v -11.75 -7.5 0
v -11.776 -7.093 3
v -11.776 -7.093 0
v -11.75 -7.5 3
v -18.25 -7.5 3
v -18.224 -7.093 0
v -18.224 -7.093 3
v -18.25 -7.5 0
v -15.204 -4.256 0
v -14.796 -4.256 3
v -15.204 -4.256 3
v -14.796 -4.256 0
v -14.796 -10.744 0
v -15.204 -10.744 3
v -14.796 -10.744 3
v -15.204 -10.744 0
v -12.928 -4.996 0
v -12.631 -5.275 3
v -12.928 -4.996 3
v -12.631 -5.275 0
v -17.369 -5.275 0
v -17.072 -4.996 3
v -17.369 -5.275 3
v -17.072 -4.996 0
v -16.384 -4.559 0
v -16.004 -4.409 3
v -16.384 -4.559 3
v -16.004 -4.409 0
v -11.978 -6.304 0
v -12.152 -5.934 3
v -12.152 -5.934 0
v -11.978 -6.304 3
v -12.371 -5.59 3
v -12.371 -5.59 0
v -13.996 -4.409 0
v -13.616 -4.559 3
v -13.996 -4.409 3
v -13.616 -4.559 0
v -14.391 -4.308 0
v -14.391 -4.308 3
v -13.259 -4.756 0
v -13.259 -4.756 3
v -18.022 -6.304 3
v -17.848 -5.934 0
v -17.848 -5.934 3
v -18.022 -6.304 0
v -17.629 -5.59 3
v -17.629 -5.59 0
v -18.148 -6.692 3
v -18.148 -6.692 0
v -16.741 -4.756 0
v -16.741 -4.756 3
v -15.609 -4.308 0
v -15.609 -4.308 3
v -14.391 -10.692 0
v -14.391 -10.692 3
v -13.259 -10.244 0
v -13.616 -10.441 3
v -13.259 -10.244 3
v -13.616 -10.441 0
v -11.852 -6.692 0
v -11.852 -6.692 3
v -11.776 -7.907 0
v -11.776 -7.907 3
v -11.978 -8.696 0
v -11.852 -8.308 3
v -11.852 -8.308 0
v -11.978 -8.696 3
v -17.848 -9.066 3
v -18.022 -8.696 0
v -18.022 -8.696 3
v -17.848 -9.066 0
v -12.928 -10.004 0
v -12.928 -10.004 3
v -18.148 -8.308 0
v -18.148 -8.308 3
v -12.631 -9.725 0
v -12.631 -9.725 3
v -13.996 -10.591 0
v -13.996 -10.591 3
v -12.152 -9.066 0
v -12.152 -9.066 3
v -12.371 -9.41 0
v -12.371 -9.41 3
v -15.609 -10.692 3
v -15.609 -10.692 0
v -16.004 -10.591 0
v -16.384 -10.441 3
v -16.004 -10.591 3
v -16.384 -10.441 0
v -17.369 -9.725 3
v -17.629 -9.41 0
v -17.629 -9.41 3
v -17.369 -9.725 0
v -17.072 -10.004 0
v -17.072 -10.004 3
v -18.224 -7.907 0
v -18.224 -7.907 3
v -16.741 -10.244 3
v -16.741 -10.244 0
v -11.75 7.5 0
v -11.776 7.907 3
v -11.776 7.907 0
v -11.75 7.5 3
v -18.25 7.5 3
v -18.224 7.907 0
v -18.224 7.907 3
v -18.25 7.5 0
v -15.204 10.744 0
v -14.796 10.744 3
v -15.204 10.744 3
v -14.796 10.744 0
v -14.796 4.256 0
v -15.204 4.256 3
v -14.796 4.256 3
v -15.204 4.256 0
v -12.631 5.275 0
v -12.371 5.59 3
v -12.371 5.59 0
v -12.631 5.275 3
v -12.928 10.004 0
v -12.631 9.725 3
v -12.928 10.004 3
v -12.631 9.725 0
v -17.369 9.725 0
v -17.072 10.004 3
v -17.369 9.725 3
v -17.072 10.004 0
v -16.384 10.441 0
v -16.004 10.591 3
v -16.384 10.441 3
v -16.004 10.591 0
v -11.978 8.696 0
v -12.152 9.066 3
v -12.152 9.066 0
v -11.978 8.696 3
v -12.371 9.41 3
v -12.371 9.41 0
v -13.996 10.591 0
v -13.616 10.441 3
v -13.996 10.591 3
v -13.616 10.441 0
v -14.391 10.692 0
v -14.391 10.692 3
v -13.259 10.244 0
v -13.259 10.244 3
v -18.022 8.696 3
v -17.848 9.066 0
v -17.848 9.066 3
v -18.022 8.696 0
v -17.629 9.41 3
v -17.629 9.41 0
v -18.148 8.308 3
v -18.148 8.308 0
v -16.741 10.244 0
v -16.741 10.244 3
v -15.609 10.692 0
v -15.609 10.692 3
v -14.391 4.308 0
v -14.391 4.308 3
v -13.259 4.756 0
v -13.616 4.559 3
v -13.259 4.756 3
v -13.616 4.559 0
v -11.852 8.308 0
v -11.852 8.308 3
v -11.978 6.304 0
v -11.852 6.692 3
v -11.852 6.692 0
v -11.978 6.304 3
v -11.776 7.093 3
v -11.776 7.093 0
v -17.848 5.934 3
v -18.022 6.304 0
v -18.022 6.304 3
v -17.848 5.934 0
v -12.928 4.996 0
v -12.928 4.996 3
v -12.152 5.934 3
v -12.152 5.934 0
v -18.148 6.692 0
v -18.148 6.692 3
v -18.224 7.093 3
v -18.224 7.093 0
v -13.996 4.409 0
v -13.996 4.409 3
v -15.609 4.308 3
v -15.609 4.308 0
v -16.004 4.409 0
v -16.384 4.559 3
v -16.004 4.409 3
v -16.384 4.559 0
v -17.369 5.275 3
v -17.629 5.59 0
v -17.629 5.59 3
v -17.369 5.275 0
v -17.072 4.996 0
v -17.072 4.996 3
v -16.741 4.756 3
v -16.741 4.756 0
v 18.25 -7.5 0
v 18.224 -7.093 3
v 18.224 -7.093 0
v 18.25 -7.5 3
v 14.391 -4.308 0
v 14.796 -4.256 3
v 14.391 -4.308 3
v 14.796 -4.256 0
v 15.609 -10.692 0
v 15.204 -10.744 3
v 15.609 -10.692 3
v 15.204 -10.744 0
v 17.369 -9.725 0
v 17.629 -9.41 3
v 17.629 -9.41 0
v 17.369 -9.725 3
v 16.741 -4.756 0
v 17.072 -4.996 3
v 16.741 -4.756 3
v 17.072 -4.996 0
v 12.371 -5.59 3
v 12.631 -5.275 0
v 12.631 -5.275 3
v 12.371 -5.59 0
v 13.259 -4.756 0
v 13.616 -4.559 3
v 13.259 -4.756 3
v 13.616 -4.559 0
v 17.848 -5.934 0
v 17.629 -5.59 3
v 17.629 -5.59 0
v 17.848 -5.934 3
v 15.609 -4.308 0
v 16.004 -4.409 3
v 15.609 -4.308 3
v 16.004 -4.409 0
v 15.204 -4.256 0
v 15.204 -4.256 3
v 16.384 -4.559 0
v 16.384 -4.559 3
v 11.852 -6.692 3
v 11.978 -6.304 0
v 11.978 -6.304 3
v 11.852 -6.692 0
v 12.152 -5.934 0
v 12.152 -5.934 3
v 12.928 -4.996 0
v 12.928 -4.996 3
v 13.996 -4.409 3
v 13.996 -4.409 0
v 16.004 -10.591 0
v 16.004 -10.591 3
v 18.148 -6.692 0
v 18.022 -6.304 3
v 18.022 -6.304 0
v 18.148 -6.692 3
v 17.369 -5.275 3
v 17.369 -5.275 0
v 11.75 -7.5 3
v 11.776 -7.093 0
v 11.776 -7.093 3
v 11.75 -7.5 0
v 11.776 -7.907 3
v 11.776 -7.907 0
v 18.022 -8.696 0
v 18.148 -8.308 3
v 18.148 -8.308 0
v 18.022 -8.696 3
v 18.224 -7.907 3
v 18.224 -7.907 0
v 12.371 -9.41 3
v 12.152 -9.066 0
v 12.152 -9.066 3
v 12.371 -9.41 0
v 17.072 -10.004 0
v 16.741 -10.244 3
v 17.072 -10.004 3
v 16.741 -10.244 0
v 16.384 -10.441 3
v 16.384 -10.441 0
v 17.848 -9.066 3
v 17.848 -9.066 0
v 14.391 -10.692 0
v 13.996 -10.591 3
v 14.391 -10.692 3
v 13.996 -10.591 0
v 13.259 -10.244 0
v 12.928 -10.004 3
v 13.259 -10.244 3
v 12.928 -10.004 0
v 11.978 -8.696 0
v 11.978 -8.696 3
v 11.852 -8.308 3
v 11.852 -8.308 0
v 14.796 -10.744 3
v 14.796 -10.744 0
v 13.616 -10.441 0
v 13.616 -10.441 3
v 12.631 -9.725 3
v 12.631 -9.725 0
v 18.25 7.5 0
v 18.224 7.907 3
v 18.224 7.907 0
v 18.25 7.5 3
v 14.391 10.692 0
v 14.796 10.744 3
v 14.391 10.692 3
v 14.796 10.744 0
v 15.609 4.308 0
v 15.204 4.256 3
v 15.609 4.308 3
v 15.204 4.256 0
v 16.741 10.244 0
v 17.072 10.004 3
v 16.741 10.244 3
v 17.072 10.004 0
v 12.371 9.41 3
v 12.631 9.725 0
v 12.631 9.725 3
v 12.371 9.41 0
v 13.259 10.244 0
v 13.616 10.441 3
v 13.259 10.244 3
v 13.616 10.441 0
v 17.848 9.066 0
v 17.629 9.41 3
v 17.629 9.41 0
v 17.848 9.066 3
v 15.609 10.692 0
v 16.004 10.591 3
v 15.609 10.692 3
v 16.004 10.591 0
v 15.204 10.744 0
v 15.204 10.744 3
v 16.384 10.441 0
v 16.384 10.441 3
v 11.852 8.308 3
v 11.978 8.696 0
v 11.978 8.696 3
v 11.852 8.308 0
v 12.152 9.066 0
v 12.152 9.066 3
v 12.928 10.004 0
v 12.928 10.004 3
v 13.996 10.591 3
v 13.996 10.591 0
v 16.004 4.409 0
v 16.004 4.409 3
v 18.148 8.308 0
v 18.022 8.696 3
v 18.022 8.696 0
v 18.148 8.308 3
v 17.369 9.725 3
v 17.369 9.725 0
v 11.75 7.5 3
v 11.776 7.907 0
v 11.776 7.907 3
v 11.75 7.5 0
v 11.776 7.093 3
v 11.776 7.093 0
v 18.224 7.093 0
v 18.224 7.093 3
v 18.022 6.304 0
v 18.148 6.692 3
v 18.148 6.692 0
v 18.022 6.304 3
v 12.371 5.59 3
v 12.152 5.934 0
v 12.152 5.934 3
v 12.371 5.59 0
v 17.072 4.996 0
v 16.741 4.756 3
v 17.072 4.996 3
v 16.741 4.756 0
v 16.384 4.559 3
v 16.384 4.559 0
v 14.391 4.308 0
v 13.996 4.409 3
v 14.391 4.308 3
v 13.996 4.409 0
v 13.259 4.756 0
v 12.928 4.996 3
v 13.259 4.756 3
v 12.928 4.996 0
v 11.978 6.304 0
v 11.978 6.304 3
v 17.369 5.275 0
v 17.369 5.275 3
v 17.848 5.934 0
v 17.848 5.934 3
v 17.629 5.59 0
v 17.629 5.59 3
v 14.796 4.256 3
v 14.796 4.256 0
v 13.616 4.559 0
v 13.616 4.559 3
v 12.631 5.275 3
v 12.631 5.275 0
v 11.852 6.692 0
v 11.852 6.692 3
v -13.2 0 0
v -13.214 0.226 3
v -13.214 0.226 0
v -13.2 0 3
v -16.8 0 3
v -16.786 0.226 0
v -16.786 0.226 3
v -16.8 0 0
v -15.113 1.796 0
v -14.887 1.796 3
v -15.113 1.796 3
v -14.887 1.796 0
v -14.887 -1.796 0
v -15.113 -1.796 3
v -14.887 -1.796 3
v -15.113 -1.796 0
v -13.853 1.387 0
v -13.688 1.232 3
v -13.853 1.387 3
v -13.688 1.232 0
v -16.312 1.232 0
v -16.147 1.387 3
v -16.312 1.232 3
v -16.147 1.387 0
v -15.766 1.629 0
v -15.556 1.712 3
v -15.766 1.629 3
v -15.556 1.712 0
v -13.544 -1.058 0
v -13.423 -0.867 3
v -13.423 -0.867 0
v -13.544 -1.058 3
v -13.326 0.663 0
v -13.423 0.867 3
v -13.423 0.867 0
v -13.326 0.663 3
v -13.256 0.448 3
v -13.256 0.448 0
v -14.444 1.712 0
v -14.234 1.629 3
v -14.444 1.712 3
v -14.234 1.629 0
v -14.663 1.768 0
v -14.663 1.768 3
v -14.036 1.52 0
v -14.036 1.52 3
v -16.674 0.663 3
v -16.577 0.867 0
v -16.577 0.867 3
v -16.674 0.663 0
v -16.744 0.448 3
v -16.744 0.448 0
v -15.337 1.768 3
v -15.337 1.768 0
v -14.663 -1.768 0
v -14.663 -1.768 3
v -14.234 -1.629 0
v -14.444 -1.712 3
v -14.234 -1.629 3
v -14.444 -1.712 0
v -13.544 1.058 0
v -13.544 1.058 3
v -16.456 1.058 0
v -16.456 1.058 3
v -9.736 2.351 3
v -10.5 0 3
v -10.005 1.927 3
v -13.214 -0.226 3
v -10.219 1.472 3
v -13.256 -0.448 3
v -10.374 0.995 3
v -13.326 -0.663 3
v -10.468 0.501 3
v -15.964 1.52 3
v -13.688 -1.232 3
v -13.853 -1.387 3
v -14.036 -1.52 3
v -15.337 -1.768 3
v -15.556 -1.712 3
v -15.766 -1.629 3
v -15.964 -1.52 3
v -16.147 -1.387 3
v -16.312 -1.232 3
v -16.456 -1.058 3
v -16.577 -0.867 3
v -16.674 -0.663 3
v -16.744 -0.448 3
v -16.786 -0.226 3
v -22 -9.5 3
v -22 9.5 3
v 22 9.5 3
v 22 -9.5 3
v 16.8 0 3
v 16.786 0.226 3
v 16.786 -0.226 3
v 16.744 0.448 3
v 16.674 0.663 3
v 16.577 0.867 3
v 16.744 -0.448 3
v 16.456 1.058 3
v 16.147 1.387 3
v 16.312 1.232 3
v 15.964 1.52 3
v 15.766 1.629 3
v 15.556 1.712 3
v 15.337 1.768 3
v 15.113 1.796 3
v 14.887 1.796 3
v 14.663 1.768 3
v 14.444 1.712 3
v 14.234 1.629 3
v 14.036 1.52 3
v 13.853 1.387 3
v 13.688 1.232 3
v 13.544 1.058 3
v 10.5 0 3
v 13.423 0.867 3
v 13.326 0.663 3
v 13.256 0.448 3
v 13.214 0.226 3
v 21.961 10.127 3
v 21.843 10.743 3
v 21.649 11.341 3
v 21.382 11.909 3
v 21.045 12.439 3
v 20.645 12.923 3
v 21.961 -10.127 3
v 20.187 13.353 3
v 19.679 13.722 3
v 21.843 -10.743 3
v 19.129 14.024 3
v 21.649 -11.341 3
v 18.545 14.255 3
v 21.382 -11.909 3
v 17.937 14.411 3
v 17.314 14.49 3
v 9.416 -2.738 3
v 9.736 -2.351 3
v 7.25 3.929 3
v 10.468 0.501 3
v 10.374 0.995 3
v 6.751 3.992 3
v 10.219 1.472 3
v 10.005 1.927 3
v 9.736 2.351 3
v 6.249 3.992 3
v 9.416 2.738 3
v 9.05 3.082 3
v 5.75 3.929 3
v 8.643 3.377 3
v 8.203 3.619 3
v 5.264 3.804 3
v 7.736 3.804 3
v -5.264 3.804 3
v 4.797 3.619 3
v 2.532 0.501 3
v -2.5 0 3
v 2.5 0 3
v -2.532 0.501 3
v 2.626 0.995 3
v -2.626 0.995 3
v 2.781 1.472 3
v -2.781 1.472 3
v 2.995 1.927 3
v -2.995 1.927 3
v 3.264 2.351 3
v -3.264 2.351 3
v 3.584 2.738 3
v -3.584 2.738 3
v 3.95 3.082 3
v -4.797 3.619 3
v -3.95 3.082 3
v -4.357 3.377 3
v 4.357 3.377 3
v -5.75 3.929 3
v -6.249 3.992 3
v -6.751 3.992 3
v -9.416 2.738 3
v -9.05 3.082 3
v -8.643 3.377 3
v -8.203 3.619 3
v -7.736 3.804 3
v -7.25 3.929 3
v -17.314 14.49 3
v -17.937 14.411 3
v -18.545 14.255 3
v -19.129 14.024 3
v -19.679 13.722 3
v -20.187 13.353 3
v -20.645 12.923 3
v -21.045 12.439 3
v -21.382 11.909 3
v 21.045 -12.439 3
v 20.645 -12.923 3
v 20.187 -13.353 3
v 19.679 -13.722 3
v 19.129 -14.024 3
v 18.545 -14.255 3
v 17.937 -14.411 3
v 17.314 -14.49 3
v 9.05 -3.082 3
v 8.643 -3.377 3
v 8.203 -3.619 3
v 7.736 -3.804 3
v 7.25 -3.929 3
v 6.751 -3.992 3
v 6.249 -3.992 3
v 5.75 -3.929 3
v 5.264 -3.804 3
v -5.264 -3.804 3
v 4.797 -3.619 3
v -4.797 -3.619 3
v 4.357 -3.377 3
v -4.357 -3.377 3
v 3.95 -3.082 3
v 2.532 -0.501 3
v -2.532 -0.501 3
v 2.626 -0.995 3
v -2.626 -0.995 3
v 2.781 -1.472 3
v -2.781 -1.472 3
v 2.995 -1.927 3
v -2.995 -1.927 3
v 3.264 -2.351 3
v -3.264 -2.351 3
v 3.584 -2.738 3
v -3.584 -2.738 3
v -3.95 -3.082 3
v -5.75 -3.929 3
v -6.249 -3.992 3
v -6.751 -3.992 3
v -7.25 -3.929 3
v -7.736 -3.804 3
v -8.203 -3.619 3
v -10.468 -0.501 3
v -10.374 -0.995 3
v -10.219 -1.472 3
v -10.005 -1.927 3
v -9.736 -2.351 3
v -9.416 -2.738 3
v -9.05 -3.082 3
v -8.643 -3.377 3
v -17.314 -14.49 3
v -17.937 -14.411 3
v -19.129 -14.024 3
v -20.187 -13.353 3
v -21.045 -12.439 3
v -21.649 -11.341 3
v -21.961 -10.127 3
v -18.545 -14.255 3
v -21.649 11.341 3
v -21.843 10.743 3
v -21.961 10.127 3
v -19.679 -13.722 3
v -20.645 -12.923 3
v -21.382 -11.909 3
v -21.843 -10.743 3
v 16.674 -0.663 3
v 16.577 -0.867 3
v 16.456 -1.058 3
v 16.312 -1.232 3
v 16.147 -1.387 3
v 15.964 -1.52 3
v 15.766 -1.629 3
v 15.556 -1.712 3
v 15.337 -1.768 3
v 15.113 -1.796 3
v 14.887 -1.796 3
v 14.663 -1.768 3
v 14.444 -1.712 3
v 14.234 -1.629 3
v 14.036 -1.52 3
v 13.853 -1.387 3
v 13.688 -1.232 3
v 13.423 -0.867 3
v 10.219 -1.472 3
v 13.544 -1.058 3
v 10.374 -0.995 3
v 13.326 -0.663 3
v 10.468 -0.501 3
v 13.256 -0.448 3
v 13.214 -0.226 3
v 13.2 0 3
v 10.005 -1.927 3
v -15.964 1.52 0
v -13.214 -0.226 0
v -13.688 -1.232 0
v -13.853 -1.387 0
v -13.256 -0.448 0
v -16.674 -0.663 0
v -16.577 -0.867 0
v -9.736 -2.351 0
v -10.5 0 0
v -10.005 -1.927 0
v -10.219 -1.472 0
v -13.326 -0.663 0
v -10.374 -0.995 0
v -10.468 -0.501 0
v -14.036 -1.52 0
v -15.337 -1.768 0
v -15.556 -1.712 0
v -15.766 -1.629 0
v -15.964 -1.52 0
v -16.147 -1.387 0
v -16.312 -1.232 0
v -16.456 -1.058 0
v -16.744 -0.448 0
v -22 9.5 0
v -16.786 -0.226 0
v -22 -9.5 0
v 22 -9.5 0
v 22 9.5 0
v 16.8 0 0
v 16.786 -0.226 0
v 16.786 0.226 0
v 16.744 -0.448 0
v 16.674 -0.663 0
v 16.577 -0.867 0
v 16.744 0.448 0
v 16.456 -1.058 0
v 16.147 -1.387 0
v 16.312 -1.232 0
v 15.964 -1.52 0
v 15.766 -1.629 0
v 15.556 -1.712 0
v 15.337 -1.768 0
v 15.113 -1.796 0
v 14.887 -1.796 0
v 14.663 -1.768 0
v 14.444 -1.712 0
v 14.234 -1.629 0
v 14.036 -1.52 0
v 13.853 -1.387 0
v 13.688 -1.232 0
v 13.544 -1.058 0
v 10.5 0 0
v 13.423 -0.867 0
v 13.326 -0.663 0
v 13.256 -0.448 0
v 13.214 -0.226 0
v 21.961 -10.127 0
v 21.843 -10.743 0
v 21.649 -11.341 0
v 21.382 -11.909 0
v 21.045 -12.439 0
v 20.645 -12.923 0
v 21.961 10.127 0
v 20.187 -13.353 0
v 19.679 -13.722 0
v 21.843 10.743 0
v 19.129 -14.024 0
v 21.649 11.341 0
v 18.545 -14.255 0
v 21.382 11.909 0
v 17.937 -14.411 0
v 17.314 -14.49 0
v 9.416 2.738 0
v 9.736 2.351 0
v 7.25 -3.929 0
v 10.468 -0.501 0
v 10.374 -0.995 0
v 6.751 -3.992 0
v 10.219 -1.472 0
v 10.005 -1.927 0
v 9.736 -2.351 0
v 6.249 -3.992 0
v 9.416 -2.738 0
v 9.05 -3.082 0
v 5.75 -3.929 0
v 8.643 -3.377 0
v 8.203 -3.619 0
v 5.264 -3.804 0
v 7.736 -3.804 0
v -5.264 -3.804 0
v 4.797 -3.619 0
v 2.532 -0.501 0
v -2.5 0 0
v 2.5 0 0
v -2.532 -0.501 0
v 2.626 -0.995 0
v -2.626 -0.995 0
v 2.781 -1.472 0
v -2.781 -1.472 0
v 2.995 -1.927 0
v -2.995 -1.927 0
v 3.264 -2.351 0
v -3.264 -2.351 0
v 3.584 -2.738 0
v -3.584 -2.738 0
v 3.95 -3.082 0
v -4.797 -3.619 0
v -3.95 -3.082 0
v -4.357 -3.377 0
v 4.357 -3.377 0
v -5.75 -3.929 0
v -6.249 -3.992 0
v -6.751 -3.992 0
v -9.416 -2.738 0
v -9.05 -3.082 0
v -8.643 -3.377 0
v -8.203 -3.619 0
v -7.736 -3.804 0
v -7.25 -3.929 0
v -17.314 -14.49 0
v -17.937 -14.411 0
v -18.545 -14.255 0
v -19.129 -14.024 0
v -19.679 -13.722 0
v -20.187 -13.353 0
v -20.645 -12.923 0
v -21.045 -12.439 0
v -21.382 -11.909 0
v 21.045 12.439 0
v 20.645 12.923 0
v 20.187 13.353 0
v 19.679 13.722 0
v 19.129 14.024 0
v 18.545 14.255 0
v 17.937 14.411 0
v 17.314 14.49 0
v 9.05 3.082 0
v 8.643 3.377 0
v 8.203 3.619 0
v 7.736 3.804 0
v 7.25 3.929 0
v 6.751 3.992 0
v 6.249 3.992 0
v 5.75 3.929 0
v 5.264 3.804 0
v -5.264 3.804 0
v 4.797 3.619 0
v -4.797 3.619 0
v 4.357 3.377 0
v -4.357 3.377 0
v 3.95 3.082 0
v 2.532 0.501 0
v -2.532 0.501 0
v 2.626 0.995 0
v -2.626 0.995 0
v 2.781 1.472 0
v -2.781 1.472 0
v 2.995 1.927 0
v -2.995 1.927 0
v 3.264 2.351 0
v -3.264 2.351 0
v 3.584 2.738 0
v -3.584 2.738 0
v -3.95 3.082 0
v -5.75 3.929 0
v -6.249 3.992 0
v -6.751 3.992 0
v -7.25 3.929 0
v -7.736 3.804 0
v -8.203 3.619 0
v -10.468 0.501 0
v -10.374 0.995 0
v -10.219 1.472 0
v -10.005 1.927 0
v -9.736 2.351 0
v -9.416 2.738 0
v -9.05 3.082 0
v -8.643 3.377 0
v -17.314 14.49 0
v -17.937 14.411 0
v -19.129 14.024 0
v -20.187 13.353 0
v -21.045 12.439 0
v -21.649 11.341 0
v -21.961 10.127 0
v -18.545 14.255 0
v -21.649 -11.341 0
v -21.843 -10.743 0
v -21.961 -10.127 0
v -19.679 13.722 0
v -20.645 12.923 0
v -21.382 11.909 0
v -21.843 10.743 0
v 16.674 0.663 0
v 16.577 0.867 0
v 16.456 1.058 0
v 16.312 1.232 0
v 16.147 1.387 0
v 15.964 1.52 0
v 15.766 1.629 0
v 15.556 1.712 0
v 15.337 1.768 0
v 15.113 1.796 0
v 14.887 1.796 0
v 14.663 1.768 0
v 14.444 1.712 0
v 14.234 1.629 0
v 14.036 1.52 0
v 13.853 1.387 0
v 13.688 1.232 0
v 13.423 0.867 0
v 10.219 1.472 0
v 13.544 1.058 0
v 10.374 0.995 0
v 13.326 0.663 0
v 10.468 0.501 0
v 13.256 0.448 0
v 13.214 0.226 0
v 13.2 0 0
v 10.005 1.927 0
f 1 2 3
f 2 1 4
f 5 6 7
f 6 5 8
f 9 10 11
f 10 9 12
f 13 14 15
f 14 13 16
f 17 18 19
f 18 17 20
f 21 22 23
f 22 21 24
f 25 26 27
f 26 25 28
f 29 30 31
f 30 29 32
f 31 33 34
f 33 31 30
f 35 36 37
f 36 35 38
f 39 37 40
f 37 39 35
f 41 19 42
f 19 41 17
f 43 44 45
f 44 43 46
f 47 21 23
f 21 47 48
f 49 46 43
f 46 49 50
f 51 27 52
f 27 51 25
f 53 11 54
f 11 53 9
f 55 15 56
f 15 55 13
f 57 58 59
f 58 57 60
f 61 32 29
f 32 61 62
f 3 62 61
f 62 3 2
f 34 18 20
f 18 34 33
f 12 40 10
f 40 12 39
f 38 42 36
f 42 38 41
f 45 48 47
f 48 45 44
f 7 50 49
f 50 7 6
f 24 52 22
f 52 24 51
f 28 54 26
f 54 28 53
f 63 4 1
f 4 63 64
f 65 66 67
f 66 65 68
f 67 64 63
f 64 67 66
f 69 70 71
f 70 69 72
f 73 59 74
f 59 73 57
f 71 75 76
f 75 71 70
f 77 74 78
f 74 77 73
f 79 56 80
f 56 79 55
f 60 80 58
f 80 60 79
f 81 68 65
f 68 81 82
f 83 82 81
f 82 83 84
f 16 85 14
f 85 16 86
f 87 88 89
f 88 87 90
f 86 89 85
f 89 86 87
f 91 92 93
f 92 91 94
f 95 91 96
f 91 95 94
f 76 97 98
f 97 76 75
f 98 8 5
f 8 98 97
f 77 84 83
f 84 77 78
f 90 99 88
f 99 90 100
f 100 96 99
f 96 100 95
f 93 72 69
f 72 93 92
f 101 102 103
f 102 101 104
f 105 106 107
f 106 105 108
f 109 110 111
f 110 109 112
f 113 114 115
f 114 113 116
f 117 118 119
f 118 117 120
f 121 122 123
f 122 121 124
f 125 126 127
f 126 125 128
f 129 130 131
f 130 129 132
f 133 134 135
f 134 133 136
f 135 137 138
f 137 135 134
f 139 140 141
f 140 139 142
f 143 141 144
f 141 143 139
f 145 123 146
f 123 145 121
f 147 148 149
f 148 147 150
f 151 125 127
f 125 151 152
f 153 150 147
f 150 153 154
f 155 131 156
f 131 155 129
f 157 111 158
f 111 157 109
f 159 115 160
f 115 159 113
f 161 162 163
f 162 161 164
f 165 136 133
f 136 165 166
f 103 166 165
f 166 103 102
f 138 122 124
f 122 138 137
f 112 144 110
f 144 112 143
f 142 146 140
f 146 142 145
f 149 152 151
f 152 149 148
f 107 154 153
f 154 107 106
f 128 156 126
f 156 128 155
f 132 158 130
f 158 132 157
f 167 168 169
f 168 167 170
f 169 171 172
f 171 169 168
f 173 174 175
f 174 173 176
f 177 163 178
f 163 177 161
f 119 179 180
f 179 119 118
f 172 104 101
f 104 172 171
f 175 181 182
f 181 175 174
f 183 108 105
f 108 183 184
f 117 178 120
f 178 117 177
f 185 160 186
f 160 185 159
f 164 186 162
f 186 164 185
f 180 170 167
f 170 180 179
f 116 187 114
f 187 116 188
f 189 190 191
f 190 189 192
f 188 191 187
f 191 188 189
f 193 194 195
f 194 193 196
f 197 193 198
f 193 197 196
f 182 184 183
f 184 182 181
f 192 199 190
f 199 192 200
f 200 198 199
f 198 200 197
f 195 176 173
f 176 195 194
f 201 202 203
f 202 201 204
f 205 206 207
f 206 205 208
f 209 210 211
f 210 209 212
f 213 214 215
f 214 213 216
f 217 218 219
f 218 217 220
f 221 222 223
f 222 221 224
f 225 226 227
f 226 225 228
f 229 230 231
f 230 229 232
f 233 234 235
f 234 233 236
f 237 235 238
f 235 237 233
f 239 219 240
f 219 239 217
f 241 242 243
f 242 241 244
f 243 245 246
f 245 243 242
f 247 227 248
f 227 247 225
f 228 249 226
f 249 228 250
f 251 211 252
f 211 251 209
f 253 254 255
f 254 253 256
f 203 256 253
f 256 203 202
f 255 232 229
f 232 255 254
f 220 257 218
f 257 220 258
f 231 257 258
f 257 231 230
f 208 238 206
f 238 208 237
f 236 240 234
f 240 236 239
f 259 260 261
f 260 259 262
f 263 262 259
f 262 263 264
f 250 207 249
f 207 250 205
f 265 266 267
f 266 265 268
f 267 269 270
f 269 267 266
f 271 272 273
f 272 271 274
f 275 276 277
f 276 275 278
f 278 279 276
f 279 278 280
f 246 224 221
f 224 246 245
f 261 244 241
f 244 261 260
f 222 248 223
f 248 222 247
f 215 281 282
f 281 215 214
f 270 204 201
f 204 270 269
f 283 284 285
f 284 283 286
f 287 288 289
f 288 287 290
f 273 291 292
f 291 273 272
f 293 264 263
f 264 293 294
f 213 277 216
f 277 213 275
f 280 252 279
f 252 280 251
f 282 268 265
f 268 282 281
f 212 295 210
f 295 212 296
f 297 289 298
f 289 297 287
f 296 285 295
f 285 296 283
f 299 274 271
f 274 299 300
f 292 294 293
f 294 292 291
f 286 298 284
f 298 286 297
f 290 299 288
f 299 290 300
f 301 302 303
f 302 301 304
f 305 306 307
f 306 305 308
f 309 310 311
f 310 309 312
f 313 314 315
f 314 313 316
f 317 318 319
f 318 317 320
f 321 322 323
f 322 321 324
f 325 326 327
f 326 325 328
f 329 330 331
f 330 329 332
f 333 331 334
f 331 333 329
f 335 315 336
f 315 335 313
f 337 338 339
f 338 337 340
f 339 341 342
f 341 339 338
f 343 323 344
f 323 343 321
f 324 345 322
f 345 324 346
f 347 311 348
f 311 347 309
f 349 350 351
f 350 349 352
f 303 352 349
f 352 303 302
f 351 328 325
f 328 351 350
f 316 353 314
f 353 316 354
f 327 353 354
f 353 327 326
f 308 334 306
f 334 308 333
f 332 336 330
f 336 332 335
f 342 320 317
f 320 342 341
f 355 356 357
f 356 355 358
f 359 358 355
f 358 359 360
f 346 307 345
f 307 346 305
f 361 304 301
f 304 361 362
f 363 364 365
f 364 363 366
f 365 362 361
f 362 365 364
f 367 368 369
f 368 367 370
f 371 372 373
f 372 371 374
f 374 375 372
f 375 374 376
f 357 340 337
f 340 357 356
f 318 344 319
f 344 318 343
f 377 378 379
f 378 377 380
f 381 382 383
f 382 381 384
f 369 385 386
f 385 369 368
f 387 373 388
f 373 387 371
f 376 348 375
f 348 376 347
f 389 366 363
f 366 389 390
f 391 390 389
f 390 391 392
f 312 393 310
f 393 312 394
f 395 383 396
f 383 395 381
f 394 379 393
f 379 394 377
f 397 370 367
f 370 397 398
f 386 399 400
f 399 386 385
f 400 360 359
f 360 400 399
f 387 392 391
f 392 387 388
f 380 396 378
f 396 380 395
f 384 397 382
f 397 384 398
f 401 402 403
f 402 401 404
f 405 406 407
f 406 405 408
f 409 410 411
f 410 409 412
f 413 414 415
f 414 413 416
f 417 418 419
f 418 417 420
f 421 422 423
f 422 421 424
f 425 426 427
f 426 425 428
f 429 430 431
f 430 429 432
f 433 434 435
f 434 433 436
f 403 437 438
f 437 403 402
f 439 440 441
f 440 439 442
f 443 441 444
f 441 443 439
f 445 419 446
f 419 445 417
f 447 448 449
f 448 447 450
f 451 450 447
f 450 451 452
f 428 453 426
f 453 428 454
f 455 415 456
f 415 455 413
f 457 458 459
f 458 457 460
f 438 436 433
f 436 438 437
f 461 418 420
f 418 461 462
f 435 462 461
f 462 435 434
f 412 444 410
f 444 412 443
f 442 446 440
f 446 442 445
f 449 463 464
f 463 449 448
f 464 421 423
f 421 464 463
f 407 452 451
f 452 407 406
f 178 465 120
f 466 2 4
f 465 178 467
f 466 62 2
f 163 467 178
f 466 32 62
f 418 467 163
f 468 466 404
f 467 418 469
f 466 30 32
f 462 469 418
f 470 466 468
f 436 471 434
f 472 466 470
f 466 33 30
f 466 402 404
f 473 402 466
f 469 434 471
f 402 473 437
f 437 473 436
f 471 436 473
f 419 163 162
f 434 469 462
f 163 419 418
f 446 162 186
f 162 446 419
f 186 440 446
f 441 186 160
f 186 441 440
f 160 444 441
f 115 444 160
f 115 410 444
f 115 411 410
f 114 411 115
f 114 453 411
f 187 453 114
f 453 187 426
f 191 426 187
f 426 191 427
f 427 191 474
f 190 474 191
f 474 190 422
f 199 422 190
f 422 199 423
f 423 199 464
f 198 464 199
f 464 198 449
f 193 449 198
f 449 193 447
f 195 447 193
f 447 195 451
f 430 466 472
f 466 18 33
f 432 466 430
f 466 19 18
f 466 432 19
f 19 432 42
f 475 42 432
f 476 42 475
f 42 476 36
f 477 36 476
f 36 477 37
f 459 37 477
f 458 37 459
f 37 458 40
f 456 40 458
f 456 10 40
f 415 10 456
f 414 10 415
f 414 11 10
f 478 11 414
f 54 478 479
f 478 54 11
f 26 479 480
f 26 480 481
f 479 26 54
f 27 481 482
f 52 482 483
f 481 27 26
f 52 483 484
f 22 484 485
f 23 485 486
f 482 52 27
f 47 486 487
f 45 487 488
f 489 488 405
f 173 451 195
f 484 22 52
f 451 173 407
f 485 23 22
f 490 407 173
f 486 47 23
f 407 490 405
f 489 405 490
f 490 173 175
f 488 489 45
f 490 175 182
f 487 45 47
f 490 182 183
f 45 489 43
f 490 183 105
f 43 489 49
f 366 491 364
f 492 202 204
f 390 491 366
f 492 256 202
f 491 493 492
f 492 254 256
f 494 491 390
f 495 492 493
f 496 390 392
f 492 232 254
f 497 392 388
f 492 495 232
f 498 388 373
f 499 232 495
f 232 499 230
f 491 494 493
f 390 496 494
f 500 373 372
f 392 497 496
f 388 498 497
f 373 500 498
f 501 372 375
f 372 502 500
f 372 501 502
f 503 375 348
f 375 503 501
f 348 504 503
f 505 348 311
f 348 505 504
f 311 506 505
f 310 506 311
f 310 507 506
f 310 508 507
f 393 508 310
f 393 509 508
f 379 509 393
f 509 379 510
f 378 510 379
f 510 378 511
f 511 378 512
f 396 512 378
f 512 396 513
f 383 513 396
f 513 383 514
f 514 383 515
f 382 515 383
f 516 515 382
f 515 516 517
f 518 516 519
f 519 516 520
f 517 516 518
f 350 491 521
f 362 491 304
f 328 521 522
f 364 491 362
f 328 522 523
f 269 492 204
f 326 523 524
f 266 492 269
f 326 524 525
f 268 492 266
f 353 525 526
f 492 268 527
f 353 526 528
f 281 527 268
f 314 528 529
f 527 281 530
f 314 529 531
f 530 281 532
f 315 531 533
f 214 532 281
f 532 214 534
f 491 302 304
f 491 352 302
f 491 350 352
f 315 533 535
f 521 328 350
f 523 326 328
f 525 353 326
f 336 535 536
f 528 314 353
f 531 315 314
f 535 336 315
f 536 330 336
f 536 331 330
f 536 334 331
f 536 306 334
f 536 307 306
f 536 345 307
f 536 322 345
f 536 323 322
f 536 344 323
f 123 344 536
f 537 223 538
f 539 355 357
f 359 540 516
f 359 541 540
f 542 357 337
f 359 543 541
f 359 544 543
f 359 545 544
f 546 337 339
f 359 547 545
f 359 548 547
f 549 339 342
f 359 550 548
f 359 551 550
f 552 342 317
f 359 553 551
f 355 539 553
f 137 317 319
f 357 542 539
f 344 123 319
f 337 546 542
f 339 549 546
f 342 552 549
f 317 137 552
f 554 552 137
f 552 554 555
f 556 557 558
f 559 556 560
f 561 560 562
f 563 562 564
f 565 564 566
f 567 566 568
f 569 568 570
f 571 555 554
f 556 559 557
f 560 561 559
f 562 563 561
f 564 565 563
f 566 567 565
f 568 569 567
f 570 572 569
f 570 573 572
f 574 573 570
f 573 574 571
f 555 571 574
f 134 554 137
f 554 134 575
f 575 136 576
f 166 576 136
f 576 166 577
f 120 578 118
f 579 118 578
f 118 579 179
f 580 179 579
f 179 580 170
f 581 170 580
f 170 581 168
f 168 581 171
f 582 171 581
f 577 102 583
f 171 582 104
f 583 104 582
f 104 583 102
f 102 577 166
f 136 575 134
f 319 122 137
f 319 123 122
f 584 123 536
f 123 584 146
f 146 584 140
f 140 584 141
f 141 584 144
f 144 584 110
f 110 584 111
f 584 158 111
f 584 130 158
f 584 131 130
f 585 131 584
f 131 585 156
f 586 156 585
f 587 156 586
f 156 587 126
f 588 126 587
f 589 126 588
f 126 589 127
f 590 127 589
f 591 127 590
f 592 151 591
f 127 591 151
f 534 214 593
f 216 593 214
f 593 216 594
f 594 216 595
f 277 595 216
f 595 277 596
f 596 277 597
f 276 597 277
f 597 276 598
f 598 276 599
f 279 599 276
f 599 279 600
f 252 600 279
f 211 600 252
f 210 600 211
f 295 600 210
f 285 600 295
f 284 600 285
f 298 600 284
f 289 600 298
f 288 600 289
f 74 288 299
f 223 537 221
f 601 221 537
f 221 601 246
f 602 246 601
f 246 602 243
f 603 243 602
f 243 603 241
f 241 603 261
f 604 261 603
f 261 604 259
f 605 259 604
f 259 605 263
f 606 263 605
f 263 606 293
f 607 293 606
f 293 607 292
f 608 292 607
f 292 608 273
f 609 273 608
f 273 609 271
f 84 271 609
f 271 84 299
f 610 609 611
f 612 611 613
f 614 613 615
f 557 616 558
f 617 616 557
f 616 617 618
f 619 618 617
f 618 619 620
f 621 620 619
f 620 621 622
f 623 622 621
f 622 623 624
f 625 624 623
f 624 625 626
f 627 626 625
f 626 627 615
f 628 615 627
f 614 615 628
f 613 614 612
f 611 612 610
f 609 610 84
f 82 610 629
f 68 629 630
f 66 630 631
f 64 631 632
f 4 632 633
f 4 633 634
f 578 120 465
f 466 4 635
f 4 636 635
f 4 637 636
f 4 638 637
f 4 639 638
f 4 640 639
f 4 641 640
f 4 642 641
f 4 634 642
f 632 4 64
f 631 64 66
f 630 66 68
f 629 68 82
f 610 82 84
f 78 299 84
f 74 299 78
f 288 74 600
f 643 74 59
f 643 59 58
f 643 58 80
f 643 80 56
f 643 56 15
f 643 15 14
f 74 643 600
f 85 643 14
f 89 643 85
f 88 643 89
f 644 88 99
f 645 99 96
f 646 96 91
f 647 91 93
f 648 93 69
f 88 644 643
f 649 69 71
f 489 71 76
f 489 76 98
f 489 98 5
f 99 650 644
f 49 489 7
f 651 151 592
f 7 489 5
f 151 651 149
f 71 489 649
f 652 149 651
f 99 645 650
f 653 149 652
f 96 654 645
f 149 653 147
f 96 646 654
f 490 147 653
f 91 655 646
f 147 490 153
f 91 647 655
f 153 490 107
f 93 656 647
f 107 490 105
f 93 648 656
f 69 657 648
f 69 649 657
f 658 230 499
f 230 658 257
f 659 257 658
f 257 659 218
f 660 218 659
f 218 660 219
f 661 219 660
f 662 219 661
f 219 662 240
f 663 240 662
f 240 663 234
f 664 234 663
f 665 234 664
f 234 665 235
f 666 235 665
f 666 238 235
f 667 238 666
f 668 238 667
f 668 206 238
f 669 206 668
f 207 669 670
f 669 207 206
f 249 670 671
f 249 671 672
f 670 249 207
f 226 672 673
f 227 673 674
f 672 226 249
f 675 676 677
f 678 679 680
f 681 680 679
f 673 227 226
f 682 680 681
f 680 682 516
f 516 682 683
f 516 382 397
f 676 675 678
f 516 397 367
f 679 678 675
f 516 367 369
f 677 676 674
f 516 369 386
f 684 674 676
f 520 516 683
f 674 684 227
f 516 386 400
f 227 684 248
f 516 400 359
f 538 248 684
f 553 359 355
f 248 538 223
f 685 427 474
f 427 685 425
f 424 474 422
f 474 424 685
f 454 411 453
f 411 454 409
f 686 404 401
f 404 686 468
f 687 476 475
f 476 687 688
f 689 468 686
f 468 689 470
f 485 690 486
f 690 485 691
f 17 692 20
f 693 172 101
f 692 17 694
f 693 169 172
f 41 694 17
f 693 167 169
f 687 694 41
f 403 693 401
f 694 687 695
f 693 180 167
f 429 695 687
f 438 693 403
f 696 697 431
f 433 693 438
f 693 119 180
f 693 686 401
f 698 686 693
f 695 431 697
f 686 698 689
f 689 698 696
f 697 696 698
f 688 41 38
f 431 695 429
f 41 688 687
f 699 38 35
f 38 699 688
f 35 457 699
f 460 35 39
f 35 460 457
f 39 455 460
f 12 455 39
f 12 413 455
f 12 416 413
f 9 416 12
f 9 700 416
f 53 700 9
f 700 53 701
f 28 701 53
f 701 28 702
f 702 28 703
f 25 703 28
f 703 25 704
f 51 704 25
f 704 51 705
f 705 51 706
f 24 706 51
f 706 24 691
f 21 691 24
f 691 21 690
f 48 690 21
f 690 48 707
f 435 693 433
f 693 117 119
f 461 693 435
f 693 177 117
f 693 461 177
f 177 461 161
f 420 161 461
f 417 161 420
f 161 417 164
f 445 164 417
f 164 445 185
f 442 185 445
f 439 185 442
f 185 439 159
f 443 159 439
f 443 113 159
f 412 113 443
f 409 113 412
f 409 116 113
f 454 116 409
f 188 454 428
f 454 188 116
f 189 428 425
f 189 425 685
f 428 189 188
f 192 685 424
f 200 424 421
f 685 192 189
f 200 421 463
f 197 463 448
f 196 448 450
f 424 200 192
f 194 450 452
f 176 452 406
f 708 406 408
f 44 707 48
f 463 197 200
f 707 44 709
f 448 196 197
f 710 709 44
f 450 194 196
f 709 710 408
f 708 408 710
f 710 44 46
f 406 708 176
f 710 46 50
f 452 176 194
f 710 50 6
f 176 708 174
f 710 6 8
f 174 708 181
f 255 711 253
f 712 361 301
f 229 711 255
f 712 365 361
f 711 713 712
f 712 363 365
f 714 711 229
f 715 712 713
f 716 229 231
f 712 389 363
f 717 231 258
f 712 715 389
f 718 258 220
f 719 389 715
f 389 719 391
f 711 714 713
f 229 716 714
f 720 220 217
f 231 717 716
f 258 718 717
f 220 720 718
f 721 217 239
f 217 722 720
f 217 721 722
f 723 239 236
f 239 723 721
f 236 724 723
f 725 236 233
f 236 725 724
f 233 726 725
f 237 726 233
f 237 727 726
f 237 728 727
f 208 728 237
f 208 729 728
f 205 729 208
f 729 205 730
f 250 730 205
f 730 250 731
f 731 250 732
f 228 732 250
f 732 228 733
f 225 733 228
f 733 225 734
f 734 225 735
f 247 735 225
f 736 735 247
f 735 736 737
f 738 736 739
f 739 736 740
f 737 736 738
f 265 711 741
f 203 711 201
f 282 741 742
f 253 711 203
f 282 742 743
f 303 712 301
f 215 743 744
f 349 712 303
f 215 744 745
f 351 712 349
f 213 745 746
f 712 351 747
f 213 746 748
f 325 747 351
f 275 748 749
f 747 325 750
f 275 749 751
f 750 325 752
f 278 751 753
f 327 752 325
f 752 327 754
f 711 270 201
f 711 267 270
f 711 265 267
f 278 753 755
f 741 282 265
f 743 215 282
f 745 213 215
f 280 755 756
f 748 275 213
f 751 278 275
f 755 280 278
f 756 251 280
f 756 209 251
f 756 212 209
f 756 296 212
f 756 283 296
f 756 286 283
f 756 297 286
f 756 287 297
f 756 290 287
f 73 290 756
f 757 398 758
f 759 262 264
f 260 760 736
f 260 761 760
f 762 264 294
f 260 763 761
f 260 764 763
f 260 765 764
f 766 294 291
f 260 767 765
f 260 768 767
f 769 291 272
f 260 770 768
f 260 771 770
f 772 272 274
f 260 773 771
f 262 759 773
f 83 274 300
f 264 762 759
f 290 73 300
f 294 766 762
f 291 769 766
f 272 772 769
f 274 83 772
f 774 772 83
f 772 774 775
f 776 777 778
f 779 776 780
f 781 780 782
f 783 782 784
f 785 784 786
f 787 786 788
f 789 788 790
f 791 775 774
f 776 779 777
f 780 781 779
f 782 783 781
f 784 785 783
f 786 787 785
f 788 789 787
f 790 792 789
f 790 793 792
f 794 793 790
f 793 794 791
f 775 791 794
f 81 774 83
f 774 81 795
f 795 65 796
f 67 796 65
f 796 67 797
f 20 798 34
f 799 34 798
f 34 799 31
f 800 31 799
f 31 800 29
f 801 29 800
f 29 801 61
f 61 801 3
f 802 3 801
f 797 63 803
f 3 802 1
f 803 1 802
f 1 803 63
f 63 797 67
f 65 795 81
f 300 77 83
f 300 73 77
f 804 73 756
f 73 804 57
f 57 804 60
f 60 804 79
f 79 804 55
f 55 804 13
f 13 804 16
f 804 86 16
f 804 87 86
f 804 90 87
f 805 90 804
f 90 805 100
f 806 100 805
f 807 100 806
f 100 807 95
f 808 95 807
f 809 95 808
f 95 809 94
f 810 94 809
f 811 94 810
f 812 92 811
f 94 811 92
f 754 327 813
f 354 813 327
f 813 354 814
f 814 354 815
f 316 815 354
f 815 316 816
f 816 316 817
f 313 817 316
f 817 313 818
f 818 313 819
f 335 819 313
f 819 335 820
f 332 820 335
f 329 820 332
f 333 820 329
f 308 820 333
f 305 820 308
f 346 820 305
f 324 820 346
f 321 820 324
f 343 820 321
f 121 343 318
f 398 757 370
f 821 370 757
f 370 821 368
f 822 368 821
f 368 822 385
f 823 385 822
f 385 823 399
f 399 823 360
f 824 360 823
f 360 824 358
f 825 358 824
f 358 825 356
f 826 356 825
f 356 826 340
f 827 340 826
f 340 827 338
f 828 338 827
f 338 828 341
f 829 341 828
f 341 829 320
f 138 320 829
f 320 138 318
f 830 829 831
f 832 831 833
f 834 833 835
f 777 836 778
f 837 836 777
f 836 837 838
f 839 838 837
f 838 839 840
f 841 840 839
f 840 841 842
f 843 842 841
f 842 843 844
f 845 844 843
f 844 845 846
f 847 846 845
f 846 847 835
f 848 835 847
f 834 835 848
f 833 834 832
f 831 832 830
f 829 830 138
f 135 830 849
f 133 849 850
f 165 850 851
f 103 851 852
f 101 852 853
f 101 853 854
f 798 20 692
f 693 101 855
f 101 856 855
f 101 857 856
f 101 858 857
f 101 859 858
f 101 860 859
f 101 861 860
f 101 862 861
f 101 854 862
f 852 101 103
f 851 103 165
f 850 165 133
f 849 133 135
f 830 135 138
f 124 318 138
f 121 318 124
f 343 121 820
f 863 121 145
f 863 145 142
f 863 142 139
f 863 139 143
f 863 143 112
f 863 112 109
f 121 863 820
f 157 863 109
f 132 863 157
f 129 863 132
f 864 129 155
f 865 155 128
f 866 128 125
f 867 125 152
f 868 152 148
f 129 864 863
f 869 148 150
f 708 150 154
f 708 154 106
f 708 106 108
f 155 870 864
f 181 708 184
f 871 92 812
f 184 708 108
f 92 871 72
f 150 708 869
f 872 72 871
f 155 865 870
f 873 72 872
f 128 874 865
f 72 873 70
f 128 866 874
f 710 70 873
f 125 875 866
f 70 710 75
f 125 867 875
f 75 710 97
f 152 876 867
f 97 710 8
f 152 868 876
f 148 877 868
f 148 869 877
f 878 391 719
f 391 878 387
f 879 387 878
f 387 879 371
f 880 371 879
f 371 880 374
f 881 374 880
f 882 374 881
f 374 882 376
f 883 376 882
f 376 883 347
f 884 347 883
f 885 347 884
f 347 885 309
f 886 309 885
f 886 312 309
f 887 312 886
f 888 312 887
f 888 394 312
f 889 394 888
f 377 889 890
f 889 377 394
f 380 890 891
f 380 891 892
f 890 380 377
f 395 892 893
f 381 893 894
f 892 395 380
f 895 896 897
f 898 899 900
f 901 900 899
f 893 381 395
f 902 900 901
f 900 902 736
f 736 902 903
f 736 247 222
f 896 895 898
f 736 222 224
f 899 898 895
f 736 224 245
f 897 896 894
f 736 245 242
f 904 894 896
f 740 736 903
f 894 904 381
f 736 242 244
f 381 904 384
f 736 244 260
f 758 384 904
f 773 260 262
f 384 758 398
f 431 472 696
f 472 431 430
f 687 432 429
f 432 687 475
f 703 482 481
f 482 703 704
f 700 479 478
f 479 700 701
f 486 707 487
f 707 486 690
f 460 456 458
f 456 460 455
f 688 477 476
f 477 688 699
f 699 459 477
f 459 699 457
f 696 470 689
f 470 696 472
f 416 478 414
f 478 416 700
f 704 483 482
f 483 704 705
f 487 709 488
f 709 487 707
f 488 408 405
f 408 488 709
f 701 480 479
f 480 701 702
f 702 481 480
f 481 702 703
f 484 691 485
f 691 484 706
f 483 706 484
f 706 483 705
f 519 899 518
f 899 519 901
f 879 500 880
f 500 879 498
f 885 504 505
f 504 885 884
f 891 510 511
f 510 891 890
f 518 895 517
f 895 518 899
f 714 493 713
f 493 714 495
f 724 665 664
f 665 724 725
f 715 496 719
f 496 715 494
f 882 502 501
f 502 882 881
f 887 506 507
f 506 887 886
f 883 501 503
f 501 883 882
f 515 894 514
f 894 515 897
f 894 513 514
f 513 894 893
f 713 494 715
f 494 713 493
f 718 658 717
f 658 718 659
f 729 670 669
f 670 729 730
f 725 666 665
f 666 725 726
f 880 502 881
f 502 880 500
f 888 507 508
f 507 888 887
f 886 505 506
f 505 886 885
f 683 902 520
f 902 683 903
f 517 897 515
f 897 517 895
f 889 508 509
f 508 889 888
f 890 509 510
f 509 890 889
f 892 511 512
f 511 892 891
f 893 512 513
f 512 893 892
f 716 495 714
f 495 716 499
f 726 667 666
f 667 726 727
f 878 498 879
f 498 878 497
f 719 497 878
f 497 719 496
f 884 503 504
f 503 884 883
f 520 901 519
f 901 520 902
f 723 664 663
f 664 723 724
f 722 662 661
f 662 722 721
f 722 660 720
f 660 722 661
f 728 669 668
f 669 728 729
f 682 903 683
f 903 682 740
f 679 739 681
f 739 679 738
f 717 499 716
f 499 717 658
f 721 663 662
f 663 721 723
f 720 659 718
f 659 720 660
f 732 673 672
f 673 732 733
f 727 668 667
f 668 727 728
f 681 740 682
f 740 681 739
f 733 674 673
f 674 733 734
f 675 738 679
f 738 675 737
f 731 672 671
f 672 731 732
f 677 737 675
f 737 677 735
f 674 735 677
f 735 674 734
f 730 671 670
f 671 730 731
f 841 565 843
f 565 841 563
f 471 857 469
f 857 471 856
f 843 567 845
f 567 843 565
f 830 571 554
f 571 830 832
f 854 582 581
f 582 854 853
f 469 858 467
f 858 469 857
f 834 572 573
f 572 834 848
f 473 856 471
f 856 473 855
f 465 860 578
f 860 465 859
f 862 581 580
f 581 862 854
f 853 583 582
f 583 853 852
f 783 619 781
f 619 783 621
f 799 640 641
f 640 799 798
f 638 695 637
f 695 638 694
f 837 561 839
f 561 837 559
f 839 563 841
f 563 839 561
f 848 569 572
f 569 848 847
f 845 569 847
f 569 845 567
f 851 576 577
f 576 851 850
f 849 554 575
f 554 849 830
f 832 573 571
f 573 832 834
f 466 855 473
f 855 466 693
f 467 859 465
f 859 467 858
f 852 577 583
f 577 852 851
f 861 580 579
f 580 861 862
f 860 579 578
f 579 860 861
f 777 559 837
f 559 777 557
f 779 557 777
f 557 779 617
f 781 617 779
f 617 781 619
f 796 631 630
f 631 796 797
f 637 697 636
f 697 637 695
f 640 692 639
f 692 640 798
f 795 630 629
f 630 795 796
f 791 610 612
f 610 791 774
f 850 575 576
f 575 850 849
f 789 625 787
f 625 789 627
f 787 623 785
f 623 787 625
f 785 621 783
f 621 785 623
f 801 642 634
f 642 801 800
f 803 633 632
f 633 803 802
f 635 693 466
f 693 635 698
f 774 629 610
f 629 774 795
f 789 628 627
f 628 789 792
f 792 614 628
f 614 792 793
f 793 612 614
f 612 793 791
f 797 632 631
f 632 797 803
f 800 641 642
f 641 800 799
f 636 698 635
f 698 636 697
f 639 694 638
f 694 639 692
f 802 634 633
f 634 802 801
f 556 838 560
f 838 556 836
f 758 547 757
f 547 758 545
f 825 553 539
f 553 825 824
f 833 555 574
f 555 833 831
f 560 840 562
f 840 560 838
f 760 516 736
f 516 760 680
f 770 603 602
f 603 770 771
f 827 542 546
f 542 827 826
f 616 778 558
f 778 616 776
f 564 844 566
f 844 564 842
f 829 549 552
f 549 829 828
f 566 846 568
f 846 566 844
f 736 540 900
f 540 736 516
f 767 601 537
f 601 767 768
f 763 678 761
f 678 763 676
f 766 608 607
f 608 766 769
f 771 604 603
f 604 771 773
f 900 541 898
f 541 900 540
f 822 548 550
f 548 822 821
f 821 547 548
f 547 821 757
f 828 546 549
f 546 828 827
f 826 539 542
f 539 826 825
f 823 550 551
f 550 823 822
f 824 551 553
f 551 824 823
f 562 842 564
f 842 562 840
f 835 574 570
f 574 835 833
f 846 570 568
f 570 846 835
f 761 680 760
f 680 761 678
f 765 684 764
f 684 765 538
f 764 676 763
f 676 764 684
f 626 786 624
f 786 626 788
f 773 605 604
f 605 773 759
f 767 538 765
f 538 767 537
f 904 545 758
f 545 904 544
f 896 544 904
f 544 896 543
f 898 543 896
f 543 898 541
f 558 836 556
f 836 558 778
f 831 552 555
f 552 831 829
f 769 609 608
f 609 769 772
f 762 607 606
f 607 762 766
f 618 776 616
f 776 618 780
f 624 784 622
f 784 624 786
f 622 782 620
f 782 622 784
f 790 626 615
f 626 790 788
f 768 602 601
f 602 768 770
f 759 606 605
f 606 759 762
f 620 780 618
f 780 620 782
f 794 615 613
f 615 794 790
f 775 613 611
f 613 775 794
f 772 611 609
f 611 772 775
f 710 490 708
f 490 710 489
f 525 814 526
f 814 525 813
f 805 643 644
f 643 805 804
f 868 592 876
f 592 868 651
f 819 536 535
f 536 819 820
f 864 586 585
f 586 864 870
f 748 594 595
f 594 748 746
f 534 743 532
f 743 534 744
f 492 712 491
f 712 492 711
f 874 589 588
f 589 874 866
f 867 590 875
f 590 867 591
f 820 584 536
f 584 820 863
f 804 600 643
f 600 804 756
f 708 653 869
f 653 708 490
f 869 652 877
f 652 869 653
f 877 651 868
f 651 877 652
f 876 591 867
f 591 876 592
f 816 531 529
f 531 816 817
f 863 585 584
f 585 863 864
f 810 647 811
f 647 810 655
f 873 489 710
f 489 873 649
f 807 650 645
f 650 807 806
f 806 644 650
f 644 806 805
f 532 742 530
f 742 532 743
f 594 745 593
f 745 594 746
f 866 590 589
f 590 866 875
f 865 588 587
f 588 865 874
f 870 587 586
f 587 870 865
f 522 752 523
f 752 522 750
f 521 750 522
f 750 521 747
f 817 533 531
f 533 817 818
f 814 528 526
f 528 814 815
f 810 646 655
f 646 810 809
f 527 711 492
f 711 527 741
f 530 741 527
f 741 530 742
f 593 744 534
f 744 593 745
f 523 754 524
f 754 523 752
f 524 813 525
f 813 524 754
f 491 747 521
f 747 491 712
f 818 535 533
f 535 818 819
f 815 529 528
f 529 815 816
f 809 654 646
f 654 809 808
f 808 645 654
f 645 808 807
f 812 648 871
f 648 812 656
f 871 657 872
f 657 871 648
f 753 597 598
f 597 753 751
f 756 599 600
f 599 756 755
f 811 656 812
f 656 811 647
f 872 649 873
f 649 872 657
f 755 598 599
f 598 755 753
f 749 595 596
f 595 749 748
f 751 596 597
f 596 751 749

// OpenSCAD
$fn = 50;


difference() {
	union() {
		hull() {
			translate(v = [-17.0000000000, 9.5000000000, 0]) {
				cylinder(h = 3, r = 5);
			}
			translate(v = [17.0000000000, 9.5000000000, 0]) {
				cylinder(h = 3, r = 5);
			}
			translate(v = [-17.0000000000, -9.5000000000, 0]) {
				cylinder(h = 3, r = 5);
			}
			translate(v = [17.0000000000, -9.5000000000, 0]) {
				cylinder(h = 3, r = 5);
			}
		}
	}
	union() {
		#translate(v = [-15.0000000000, -7.5000000000, 0]) {
			cylinder(h = 3, r = 3.2500000000);
		}
		#translate(v = [-15.0000000000, 7.5000000000, 0]) {
			cylinder(h = 3, r = 3.2500000000);
		}
		#translate(v = [15.0000000000, -7.5000000000, 0]) {
			cylinder(h = 3, r = 3.2500000000);
		}
		#translate(v = [15.0000000000, 7.5000000000, 0]) {
			cylinder(h = 3, r = 3.2500000000);
		}
		#translate(v = [-15.0000000000, -7.5000000000, -100.0000000000]) {
			cylinder(h = 200, r = 3.2500000000);
		}
		#translate(v = [-15.0000000000, 7.5000000000, -100.0000000000]) {
			cylinder(h = 200, r = 3.2500000000);
		}
		#translate(v = [15.0000000000, -7.5000000000, -100.0000000000]) {
			cylinder(h = 200, r = 3.2500000000);
		}
		#translate(v = [15.0000000000, 7.5000000000, -100.0000000000]) {
			cylinder(h = 200, r = 3.2500000000);
		}
		#translate(v = [-15.0000000000, -7.5000000000, 0]) {
			cylinder(h = 3, r = 1.8000000000);
		}
		#translate(v = [-15.0000000000, 0.0000000000, 0]) {
			cylinder(h = 3, r = 1.8000000000);
		}
		#translate(v = [-15.0000000000, 7.5000000000, 0]) {
			cylinder(h = 3, r = 1.8000000000);
		}
		#translate(v = [15.0000000000, -7.5000000000, 0]) {
			cylinder(h = 3, r = 1.8000000000);
		}
		#translate(v = [15.0000000000, 0.0000000000, 0]) {
			cylinder(h = 3, r = 1.8000000000);
		}
		#translate(v = [15.0000000000, 7.5000000000, 0]) {
			cylinder(h = 3, r = 1.8000000000);
		}
		#translate(v = [-15.0000000000, -7.5000000000, 0]) {
			cylinder(h = 3, r = 1.8000000000);
		}
		#translate(v = [-15.0000000000, 0.0000000000, 0]) {
			cylinder(h = 3, r = 1.8000000000);
		}
		#translate(v = [-15.0000000000, 7.5000000000, 0]) {
			cylinder(h = 3, r = 1.8000000000);
		}
		#translate(v = [15.0000000000, -7.5000000000, 0]) {
			cylinder(h = 3, r = 1.8000000000);
		}
		#translate(v = [15.0000000000, 0.0000000000, 0]) {
			cylinder(h = 3, r = 1.8000000000);
		}
		#translate(v = [15.0000000000, 7.5000000000, 0]) {
			cylinder(h = 3, r = 1.8000000000);
		}
		#translate(v = [-15.0000000000, -7.5000000000, 0]) {
			cylinder(h = 3, r = 1.8000000000);
		}
		#translate(v = [-15.0000000000, 0.0000000000, 0]) {
			cylinder(h = 3, r = 1.8000000000);
		}
		#translate(v = [-15.0000000000, 7.5000000000, 0]) {
			cylinder(h = 3, r = 1.8000000000);
		}
		#translate(v = [15.0000000000, -7.5000000000, 0]) {
			cylinder(h = 3, r = 1.8000000000);
		}
		#translate(v = [15.0000000000, 0.0000000000, 0]) {
			cylinder(h = 3, r = 1.8000000000);
		}
		#translate(v = [15.0000000000, 7.5000000000, 0]) {
			cylinder(h = 3, r = 1.8000000000);
		}
		#translate(v = [-6.5000000000, 0, 0]) {
			cylinder(h = 3, r = 4.0000000000);
		}
		#translate(v = [6.5000000000, 0, 0]) {
			cylinder(h = 3, r = 4.0000000000);
		}
	}
}
